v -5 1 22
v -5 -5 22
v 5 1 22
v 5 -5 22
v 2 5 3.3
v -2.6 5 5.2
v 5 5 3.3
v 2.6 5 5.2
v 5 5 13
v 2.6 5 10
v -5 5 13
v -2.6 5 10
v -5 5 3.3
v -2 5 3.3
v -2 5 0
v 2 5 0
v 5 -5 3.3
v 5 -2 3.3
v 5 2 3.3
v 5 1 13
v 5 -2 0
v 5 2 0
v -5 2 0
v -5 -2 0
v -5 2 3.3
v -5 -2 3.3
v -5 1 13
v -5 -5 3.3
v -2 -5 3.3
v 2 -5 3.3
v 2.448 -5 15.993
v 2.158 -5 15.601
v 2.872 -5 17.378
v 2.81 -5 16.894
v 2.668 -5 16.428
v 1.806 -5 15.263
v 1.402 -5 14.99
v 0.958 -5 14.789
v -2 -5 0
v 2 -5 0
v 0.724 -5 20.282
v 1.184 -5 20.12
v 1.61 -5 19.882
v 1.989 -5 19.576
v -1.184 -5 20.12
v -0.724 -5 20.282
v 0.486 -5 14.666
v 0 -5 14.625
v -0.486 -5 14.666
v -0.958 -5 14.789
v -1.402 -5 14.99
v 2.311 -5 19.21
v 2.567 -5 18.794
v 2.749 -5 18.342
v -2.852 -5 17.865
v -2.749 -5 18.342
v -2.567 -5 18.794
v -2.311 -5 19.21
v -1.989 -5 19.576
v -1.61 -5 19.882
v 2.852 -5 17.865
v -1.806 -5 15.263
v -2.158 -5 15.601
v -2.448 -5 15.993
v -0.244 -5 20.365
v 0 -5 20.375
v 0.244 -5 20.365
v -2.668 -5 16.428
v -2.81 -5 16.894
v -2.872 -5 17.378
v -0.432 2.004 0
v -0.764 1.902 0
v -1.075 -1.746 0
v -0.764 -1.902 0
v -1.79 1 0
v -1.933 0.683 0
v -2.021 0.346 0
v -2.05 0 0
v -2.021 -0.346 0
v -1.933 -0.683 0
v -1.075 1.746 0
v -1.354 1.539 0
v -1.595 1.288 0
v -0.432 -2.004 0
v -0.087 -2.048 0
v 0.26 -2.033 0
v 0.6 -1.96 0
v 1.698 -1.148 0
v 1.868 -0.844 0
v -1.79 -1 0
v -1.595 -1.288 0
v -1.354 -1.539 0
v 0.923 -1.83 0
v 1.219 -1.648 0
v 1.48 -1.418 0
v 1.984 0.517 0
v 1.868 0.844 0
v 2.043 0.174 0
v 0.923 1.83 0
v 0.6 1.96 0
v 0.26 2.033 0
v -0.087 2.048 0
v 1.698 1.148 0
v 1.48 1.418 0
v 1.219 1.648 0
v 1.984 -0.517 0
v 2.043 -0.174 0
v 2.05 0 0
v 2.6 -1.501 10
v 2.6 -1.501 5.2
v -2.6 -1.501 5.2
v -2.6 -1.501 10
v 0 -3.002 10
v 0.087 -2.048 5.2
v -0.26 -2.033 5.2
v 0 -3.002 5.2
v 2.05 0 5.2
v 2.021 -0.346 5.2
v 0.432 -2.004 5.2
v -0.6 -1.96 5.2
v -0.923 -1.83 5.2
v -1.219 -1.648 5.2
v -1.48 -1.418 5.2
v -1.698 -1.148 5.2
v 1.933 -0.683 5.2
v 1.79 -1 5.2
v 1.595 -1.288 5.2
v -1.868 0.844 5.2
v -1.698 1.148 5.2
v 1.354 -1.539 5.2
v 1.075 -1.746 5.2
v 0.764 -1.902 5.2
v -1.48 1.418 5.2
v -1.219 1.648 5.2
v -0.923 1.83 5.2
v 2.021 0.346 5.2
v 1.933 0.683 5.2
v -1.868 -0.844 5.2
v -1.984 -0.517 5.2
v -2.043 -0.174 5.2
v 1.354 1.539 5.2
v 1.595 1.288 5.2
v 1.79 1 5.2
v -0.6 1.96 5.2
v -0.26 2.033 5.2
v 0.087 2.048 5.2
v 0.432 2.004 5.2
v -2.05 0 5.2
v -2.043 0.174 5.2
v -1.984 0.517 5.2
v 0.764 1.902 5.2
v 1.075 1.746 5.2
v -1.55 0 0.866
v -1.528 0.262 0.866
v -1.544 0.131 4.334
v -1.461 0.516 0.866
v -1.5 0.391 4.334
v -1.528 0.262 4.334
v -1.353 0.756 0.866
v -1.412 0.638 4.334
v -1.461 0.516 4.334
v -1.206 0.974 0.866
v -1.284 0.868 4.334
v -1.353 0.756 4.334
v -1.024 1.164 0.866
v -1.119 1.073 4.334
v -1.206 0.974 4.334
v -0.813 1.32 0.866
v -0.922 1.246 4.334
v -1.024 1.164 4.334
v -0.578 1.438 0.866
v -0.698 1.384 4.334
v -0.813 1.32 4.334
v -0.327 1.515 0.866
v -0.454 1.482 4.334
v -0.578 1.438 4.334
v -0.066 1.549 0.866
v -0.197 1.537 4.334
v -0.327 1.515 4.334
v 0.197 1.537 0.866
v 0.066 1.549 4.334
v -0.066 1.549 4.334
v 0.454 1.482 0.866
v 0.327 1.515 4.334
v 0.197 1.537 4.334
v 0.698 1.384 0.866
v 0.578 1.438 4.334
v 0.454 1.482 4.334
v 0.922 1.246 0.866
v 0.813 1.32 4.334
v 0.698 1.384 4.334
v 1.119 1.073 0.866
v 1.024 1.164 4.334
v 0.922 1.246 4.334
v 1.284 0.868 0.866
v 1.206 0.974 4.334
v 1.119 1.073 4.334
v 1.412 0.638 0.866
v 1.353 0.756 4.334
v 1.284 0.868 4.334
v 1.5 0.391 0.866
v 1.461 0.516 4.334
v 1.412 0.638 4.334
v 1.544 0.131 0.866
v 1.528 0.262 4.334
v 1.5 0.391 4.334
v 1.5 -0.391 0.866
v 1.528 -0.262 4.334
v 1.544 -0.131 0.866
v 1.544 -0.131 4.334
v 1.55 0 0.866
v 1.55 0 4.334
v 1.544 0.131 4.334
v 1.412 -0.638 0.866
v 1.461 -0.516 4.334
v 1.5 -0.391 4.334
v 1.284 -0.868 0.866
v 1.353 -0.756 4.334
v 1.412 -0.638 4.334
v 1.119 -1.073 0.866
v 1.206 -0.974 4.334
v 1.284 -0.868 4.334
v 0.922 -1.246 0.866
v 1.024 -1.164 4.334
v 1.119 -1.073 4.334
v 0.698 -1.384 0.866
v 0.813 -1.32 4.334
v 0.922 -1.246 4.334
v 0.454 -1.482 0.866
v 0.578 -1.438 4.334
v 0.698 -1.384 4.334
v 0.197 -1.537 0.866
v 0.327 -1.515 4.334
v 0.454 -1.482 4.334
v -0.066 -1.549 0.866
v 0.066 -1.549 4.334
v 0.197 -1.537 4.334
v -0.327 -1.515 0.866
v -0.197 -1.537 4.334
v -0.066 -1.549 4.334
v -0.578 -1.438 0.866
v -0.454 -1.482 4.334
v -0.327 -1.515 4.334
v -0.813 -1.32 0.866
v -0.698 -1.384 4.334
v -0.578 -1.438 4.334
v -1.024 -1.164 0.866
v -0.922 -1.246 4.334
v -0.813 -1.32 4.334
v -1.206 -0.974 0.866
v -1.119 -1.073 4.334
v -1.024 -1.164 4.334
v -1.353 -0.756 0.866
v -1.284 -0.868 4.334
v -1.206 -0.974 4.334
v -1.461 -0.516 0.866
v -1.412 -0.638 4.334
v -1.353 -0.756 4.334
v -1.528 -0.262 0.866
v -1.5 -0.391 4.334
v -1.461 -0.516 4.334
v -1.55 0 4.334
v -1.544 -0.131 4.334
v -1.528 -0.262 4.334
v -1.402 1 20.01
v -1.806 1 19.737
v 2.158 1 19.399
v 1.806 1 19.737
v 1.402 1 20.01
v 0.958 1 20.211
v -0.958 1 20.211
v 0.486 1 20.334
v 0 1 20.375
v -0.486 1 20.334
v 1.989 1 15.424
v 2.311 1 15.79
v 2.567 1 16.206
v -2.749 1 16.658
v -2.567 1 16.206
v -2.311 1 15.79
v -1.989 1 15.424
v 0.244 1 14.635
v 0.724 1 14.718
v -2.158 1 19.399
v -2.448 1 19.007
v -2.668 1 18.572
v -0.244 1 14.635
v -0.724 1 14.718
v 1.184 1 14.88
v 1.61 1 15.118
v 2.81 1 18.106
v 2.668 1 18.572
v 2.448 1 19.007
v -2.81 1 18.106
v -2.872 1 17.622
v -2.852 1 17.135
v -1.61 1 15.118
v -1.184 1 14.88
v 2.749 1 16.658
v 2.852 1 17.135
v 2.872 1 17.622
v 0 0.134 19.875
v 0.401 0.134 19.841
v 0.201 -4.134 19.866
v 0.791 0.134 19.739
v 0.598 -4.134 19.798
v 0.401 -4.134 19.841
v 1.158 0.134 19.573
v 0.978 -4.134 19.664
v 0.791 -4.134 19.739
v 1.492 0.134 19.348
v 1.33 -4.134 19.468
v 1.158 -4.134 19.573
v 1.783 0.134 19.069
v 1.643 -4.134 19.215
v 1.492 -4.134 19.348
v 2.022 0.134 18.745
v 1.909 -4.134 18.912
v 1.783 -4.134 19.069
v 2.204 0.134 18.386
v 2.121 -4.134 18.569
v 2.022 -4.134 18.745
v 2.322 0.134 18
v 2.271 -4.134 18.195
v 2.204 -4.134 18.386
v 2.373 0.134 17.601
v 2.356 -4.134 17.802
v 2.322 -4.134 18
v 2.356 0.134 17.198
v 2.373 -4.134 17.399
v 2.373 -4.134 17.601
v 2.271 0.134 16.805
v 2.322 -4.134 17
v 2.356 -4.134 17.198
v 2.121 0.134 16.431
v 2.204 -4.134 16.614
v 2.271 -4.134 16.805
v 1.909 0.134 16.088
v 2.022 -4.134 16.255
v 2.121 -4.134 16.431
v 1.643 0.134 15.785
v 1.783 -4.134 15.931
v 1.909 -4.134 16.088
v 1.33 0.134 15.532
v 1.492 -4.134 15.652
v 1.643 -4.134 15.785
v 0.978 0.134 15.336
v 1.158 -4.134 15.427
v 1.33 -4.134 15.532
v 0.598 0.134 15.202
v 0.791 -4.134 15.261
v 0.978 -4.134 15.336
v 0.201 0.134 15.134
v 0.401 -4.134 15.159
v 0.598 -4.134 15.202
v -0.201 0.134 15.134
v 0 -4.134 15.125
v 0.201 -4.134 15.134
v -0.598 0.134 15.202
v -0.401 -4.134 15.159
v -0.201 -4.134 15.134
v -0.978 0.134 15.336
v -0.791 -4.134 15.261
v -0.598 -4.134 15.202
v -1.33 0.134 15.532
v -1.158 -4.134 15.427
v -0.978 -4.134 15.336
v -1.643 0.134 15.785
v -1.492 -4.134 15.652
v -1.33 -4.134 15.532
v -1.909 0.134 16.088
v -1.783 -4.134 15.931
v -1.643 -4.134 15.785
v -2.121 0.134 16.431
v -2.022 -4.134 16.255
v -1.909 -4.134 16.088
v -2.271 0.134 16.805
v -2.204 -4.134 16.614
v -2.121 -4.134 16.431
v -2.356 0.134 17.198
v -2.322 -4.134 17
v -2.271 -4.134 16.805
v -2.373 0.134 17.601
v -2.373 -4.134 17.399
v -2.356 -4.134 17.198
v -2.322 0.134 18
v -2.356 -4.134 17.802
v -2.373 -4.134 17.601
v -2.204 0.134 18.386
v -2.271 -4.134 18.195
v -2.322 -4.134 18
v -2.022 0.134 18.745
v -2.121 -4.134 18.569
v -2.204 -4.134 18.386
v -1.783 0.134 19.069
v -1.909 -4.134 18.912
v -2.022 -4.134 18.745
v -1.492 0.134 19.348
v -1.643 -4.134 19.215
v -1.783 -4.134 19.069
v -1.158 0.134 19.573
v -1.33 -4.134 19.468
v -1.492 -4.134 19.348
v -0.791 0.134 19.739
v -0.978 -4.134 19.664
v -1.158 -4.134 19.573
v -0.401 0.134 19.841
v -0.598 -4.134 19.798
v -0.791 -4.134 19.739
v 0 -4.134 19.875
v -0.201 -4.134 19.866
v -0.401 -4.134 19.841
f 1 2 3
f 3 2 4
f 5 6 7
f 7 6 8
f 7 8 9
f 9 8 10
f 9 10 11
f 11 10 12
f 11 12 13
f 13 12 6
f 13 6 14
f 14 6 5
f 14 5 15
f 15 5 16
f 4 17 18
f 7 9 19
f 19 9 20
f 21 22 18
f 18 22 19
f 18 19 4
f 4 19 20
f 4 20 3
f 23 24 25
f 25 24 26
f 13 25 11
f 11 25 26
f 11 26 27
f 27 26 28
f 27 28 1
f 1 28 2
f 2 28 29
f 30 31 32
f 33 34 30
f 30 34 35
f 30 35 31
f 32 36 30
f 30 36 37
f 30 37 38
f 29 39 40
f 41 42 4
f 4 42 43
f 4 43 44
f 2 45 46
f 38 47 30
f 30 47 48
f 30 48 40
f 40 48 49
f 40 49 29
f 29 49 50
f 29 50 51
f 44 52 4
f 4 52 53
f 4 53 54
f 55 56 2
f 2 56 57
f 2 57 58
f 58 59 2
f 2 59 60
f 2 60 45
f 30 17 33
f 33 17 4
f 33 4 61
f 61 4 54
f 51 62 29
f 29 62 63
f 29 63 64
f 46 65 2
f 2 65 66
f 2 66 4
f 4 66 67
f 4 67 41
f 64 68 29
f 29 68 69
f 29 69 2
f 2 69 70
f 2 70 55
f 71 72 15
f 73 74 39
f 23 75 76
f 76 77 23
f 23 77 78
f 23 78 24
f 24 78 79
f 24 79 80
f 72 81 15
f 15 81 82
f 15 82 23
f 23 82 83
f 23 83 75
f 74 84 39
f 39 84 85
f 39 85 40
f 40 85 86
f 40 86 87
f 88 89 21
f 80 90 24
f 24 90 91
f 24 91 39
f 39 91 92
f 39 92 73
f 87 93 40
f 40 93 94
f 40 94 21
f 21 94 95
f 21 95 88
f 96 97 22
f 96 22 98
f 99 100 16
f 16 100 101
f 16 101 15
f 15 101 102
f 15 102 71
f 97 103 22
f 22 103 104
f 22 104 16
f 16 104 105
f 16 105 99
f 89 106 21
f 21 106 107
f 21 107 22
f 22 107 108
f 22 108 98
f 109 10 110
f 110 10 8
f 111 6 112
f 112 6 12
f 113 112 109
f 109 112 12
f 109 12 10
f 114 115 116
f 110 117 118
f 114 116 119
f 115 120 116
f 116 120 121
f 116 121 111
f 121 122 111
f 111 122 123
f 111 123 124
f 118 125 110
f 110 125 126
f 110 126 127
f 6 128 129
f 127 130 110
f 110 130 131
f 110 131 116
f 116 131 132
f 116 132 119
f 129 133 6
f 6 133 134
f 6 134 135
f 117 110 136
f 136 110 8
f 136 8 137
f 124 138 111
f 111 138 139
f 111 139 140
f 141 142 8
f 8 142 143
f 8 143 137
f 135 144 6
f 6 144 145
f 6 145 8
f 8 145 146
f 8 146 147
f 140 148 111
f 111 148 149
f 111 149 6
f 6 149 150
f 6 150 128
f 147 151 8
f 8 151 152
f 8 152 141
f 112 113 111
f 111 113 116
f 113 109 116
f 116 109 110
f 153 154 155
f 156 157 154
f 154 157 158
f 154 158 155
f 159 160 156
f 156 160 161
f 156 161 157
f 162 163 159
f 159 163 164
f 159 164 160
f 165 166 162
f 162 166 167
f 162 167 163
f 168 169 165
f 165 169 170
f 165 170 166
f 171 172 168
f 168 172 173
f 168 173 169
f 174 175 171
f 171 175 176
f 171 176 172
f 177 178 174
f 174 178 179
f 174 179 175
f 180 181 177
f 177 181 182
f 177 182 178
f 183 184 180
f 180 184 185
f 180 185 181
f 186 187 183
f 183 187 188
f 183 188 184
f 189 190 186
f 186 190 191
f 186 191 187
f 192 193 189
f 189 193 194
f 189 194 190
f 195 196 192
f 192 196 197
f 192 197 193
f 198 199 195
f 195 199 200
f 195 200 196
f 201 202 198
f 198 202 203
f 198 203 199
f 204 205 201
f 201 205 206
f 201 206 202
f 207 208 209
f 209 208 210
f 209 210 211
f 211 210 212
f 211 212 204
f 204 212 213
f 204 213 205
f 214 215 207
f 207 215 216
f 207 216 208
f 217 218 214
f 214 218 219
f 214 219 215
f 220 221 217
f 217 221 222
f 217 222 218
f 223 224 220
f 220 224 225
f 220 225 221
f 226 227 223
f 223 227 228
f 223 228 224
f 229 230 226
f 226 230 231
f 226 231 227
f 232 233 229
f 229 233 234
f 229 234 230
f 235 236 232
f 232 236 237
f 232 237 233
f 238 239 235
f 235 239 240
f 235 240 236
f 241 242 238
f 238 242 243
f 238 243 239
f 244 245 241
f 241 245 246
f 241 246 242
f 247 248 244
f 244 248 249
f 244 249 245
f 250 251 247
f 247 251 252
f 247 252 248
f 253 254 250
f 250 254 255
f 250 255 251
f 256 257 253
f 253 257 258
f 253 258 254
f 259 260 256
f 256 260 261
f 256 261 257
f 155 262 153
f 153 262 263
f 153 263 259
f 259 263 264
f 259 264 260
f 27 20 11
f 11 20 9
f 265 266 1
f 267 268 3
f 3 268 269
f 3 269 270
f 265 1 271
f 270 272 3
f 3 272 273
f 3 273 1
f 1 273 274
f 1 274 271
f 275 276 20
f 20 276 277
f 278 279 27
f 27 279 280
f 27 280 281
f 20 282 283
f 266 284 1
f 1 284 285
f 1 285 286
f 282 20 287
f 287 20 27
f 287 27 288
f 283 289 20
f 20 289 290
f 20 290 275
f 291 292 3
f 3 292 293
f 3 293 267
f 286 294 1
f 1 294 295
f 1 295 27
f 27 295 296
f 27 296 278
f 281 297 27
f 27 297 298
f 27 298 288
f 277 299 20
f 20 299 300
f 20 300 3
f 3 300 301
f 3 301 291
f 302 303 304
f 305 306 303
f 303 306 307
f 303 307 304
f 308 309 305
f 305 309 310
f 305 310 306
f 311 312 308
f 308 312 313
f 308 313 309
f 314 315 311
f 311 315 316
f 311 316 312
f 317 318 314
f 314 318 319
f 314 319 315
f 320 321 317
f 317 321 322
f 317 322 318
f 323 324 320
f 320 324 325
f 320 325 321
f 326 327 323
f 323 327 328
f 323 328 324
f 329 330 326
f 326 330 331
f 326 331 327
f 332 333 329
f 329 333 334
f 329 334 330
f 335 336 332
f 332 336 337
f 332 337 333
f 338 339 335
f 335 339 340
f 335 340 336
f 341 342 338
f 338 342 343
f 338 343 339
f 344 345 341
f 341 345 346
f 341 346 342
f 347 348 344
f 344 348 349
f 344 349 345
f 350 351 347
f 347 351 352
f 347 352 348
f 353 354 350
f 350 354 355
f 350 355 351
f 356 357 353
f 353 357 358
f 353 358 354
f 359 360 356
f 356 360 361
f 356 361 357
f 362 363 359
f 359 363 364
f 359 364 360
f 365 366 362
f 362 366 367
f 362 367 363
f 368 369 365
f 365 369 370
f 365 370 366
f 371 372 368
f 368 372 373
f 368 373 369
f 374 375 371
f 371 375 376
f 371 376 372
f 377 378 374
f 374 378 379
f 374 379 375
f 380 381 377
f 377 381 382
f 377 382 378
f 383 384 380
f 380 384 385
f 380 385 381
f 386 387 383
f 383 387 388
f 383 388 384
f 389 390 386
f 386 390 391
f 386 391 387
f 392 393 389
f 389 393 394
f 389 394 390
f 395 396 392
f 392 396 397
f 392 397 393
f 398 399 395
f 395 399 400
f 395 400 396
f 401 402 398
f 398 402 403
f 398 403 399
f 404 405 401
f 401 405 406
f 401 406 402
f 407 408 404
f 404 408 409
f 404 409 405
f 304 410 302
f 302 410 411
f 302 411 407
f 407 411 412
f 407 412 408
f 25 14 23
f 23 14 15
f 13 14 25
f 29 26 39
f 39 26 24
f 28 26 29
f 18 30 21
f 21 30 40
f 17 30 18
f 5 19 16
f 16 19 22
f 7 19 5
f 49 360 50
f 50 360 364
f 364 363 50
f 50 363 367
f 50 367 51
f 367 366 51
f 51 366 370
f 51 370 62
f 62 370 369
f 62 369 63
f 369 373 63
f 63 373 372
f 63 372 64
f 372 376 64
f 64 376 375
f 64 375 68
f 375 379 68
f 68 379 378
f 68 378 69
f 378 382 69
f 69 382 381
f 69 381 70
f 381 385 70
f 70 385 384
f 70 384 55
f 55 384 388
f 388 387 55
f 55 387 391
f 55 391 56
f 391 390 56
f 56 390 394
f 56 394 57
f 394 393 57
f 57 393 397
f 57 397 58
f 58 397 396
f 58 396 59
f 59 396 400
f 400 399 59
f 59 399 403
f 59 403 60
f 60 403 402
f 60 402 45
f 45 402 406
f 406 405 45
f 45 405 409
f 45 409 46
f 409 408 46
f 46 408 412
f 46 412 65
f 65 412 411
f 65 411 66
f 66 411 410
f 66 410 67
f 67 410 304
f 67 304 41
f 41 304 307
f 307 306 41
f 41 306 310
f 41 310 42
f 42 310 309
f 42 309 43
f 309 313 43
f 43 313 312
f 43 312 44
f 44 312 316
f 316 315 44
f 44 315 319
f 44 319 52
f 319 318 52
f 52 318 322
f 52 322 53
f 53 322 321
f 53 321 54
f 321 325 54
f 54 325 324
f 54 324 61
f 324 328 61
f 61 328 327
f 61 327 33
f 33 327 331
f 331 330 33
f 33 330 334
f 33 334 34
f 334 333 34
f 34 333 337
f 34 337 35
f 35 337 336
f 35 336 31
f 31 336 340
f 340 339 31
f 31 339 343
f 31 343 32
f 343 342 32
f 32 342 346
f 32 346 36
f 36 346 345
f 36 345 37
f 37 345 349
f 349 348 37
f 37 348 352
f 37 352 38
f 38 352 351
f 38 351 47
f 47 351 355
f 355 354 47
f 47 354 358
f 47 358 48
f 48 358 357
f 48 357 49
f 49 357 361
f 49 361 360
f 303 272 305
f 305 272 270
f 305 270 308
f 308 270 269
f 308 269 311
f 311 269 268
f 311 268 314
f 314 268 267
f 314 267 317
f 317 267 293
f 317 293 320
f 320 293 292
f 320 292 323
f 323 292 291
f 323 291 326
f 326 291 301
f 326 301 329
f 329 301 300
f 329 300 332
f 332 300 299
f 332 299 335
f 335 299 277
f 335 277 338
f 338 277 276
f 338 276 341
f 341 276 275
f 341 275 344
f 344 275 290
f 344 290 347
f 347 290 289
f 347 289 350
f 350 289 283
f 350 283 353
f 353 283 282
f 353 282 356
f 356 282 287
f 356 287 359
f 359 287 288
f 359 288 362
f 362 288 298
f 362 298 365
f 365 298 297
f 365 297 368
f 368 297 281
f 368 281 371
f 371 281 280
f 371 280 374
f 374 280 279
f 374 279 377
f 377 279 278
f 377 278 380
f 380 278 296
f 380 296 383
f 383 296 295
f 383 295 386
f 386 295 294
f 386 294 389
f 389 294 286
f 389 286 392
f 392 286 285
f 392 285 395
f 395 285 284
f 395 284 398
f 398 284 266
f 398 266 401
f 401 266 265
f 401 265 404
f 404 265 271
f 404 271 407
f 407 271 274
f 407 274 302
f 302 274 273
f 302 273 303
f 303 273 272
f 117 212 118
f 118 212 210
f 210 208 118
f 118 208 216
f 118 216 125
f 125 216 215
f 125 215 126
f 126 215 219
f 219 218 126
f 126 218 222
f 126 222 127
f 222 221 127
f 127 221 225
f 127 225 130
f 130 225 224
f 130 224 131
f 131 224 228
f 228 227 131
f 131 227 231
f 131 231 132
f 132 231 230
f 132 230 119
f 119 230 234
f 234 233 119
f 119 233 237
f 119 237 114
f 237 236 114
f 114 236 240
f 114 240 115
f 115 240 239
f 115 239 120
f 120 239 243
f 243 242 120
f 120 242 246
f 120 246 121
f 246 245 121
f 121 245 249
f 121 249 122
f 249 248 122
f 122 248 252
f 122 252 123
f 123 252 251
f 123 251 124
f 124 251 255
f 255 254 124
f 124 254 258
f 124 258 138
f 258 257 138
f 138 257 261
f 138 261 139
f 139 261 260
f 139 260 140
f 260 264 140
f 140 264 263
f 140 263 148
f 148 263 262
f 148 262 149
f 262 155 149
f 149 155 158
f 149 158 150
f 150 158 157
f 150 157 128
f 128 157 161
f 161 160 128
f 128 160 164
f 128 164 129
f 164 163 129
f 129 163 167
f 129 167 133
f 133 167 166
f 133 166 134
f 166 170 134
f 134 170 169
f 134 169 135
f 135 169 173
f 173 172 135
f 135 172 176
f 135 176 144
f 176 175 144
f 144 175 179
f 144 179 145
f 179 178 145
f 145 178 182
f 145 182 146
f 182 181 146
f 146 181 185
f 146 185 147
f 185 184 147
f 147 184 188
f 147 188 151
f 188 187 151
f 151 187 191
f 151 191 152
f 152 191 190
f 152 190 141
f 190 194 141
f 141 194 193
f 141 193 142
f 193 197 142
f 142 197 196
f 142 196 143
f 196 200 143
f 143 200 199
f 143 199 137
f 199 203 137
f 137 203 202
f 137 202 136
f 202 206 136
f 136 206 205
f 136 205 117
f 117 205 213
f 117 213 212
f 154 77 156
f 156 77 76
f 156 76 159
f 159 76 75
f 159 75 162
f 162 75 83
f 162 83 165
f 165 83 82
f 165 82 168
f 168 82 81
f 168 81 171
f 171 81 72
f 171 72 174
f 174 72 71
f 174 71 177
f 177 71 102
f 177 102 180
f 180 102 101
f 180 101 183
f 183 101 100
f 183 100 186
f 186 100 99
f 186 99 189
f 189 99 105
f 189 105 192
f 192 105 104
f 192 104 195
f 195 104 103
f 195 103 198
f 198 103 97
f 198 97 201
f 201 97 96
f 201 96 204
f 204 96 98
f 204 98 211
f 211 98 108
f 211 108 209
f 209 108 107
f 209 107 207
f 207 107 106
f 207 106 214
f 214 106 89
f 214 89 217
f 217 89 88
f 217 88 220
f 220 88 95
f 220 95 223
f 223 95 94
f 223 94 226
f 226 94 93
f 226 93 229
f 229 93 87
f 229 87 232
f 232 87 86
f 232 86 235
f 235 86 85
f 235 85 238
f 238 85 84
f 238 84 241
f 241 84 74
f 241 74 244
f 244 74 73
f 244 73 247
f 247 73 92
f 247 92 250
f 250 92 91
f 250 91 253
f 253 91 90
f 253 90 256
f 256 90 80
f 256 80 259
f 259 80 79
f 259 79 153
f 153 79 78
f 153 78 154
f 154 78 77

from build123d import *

# Parameters (mm, degrees)
SKETCH_1_W             = 10
SKETCH_1_H             = 10
EXTRUDE_1_DEPTH        = 22
CUT_EXTRUDE_START      = -5.2
CUT_EXTRUDE_10_DEPTH   = 4.8
SKETCH_14_R            = 1.55
CUT_EXTRUDE_11_DEPTH   = 10
SKETCH_15_W            = 10
SKETCH_15_H            = 9
CUT_EXTRUDE_12_DEPTH   = 4
SKETCH_16_R            = 2.375
CUT_EXTRUDE_13_DEPTH   = 7
CUT_EXTRUDE_14_DEPTH   = 3.3
CHAMFER_1_SIZE         = 0.5
CHAMFER_1_SIZE2        = 0.866025404
CHAMFER_1_PART_2_SIZE  = 0.5
CHAMFER_1_PART_2_SIZE2 = 0.866025404
CHAMFER_1_PART_3_SIZE  = 0.5
CHAMFER_1_PART_3_SIZE2 = 0.866025404
CHAMFER_1_PART_4_SIZE  = 0.5
CHAMFER_1_PART_4_SIZE2 = 0.866025404


with BuildPart() as part:
    # 草图1 → 凸台-拉伸1 (new body)
    with BuildSketch(Plane.XY):
        Rectangle(SKETCH_1_W, SKETCH_1_H)
    extrude(amount=EXTRUDE_1_DEPTH)

    # 草图13 → 切除-拉伸10 (cut)
    with BuildSketch(Plane(origin=(0, 0, 0), x_dir=(-1, 0, 0), z_dir=(0, 0, -1)).offset(CUT_EXTRUDE_START)):
        Polygon((2.6, 1.823001189), (2.6, 6), (-2.6, 6), (-2.6, 1.654219648), (-2.6, -1.5011107), (0, -3.0022214), (2.6, -1.5011107), align=None)
    extrude(amount=-CUT_EXTRUDE_10_DEPTH, mode=Mode.SUBTRACT)

    # 草图14 → 切除-拉伸11 (cut)
    with BuildSketch(Plane(origin=(0, 0, 0), x_dir=(-1, 0, 0), z_dir=(0, 0, -1))):
        Circle(SKETCH_14_R)
    extrude(amount=-CUT_EXTRUDE_11_DEPTH, mode=Mode.SUBTRACT)

    # 草图15 → 切除-拉伸12 (cut)
    with BuildSketch(Plane(origin=(0, 5, 0), x_dir=(1, 0, 0), z_dir=(0, 1, 0))):
        with Locations((0, -17.5)):
            Rectangle(SKETCH_15_W, SKETCH_15_H)
    extrude(amount=-CUT_EXTRUDE_12_DEPTH, mode=Mode.SUBTRACT)

    # 草图16 → 切除-拉伸13 (cut, through all)
    with BuildSketch(Plane(origin=(0, 1, 0), x_dir=(1, 0, 0), z_dir=(0, 1, 0))):
        with Locations((0, -17.5)):
            Circle(SKETCH_16_R)
    extrude(amount=-CUT_EXTRUDE_13_DEPTH, mode=Mode.SUBTRACT)

    # 草图17 → 切除-拉伸14 (cut)
    with BuildSketch(Plane(origin=(0, 0, 0), x_dir=(-1, 0, 0), z_dir=(0, 0, -1))):
        Polygon((5, 5), (2, 5), (5, 2), align=None)
        Polygon((5, -5), (5, -2), (2, -5), align=None)
        Polygon((-5, 5), (-5, 2), (-2, 5), align=None)
        Polygon((-5, -5), (-2, -5), (-5, -2), align=None)
    extrude(amount=-CUT_EXTRUDE_14_DEPTH, mode=Mode.SUBTRACT)

    # 倒角1
    chamfer_1_edges = [part.edges().sort_by_distance(p)[0] for p in [
        (1.55, 0, 5.2),
    ]]
    chamfer_1_side = [part.faces().sort_by_distance(p)[0] for p in [
        (0, 1.701860009, 5.2),
    ]]
    chamfer(chamfer_1_edges, length=CHAMFER_1_SIZE, length2=CHAMFER_1_SIZE2, reference=chamfer_1_side[0])

    # 倒角1 part 2
    chamfer_1_part_2_edges = [part.edges().sort_by_distance(p)[0] for p in [
        (1.55, 0, 0),
    ]]
    chamfer_1_part_2_side = [part.faces().sort_by_distance(p)[0] for p in [
        (-3.4, 3.4, 0),
    ]]
    chamfer(chamfer_1_part_2_edges, length=CHAMFER_1_PART_2_SIZE, length2=CHAMFER_1_PART_2_SIZE2, reference=chamfer_1_part_2_side[0])

    # 倒角1 part 3
    chamfer_1_part_3_edges = [part.edges().sort_by_distance(p)[0] for p in [
        (-2.375, -5, 17.5),
    ]]
    chamfer_1_part_3_side = [part.faces().sort_by_distance(p)[0] for p in [
        (0, -5, 11.383311376),
    ]]
    chamfer(chamfer_1_part_3_edges, length=CHAMFER_1_PART_3_SIZE, length2=CHAMFER_1_PART_3_SIZE2, reference=chamfer_1_part_3_side[0])

    # 倒角1 part 4
    chamfer_1_part_4_edges = [part.edges().sort_by_distance(p)[0] for p in [
        (-2.375, 1, 17.5),
    ]]
    chamfer_1_part_4_side = [part.faces().sort_by_distance(p)[0] for p in [
        (0, 1, 21.86546376),
    ]]
    chamfer(chamfer_1_part_4_edges, length=CHAMFER_1_PART_4_SIZE, length2=CHAMFER_1_PART_4_SIZE2, reference=chamfer_1_part_4_side[0])


solid = part.part
